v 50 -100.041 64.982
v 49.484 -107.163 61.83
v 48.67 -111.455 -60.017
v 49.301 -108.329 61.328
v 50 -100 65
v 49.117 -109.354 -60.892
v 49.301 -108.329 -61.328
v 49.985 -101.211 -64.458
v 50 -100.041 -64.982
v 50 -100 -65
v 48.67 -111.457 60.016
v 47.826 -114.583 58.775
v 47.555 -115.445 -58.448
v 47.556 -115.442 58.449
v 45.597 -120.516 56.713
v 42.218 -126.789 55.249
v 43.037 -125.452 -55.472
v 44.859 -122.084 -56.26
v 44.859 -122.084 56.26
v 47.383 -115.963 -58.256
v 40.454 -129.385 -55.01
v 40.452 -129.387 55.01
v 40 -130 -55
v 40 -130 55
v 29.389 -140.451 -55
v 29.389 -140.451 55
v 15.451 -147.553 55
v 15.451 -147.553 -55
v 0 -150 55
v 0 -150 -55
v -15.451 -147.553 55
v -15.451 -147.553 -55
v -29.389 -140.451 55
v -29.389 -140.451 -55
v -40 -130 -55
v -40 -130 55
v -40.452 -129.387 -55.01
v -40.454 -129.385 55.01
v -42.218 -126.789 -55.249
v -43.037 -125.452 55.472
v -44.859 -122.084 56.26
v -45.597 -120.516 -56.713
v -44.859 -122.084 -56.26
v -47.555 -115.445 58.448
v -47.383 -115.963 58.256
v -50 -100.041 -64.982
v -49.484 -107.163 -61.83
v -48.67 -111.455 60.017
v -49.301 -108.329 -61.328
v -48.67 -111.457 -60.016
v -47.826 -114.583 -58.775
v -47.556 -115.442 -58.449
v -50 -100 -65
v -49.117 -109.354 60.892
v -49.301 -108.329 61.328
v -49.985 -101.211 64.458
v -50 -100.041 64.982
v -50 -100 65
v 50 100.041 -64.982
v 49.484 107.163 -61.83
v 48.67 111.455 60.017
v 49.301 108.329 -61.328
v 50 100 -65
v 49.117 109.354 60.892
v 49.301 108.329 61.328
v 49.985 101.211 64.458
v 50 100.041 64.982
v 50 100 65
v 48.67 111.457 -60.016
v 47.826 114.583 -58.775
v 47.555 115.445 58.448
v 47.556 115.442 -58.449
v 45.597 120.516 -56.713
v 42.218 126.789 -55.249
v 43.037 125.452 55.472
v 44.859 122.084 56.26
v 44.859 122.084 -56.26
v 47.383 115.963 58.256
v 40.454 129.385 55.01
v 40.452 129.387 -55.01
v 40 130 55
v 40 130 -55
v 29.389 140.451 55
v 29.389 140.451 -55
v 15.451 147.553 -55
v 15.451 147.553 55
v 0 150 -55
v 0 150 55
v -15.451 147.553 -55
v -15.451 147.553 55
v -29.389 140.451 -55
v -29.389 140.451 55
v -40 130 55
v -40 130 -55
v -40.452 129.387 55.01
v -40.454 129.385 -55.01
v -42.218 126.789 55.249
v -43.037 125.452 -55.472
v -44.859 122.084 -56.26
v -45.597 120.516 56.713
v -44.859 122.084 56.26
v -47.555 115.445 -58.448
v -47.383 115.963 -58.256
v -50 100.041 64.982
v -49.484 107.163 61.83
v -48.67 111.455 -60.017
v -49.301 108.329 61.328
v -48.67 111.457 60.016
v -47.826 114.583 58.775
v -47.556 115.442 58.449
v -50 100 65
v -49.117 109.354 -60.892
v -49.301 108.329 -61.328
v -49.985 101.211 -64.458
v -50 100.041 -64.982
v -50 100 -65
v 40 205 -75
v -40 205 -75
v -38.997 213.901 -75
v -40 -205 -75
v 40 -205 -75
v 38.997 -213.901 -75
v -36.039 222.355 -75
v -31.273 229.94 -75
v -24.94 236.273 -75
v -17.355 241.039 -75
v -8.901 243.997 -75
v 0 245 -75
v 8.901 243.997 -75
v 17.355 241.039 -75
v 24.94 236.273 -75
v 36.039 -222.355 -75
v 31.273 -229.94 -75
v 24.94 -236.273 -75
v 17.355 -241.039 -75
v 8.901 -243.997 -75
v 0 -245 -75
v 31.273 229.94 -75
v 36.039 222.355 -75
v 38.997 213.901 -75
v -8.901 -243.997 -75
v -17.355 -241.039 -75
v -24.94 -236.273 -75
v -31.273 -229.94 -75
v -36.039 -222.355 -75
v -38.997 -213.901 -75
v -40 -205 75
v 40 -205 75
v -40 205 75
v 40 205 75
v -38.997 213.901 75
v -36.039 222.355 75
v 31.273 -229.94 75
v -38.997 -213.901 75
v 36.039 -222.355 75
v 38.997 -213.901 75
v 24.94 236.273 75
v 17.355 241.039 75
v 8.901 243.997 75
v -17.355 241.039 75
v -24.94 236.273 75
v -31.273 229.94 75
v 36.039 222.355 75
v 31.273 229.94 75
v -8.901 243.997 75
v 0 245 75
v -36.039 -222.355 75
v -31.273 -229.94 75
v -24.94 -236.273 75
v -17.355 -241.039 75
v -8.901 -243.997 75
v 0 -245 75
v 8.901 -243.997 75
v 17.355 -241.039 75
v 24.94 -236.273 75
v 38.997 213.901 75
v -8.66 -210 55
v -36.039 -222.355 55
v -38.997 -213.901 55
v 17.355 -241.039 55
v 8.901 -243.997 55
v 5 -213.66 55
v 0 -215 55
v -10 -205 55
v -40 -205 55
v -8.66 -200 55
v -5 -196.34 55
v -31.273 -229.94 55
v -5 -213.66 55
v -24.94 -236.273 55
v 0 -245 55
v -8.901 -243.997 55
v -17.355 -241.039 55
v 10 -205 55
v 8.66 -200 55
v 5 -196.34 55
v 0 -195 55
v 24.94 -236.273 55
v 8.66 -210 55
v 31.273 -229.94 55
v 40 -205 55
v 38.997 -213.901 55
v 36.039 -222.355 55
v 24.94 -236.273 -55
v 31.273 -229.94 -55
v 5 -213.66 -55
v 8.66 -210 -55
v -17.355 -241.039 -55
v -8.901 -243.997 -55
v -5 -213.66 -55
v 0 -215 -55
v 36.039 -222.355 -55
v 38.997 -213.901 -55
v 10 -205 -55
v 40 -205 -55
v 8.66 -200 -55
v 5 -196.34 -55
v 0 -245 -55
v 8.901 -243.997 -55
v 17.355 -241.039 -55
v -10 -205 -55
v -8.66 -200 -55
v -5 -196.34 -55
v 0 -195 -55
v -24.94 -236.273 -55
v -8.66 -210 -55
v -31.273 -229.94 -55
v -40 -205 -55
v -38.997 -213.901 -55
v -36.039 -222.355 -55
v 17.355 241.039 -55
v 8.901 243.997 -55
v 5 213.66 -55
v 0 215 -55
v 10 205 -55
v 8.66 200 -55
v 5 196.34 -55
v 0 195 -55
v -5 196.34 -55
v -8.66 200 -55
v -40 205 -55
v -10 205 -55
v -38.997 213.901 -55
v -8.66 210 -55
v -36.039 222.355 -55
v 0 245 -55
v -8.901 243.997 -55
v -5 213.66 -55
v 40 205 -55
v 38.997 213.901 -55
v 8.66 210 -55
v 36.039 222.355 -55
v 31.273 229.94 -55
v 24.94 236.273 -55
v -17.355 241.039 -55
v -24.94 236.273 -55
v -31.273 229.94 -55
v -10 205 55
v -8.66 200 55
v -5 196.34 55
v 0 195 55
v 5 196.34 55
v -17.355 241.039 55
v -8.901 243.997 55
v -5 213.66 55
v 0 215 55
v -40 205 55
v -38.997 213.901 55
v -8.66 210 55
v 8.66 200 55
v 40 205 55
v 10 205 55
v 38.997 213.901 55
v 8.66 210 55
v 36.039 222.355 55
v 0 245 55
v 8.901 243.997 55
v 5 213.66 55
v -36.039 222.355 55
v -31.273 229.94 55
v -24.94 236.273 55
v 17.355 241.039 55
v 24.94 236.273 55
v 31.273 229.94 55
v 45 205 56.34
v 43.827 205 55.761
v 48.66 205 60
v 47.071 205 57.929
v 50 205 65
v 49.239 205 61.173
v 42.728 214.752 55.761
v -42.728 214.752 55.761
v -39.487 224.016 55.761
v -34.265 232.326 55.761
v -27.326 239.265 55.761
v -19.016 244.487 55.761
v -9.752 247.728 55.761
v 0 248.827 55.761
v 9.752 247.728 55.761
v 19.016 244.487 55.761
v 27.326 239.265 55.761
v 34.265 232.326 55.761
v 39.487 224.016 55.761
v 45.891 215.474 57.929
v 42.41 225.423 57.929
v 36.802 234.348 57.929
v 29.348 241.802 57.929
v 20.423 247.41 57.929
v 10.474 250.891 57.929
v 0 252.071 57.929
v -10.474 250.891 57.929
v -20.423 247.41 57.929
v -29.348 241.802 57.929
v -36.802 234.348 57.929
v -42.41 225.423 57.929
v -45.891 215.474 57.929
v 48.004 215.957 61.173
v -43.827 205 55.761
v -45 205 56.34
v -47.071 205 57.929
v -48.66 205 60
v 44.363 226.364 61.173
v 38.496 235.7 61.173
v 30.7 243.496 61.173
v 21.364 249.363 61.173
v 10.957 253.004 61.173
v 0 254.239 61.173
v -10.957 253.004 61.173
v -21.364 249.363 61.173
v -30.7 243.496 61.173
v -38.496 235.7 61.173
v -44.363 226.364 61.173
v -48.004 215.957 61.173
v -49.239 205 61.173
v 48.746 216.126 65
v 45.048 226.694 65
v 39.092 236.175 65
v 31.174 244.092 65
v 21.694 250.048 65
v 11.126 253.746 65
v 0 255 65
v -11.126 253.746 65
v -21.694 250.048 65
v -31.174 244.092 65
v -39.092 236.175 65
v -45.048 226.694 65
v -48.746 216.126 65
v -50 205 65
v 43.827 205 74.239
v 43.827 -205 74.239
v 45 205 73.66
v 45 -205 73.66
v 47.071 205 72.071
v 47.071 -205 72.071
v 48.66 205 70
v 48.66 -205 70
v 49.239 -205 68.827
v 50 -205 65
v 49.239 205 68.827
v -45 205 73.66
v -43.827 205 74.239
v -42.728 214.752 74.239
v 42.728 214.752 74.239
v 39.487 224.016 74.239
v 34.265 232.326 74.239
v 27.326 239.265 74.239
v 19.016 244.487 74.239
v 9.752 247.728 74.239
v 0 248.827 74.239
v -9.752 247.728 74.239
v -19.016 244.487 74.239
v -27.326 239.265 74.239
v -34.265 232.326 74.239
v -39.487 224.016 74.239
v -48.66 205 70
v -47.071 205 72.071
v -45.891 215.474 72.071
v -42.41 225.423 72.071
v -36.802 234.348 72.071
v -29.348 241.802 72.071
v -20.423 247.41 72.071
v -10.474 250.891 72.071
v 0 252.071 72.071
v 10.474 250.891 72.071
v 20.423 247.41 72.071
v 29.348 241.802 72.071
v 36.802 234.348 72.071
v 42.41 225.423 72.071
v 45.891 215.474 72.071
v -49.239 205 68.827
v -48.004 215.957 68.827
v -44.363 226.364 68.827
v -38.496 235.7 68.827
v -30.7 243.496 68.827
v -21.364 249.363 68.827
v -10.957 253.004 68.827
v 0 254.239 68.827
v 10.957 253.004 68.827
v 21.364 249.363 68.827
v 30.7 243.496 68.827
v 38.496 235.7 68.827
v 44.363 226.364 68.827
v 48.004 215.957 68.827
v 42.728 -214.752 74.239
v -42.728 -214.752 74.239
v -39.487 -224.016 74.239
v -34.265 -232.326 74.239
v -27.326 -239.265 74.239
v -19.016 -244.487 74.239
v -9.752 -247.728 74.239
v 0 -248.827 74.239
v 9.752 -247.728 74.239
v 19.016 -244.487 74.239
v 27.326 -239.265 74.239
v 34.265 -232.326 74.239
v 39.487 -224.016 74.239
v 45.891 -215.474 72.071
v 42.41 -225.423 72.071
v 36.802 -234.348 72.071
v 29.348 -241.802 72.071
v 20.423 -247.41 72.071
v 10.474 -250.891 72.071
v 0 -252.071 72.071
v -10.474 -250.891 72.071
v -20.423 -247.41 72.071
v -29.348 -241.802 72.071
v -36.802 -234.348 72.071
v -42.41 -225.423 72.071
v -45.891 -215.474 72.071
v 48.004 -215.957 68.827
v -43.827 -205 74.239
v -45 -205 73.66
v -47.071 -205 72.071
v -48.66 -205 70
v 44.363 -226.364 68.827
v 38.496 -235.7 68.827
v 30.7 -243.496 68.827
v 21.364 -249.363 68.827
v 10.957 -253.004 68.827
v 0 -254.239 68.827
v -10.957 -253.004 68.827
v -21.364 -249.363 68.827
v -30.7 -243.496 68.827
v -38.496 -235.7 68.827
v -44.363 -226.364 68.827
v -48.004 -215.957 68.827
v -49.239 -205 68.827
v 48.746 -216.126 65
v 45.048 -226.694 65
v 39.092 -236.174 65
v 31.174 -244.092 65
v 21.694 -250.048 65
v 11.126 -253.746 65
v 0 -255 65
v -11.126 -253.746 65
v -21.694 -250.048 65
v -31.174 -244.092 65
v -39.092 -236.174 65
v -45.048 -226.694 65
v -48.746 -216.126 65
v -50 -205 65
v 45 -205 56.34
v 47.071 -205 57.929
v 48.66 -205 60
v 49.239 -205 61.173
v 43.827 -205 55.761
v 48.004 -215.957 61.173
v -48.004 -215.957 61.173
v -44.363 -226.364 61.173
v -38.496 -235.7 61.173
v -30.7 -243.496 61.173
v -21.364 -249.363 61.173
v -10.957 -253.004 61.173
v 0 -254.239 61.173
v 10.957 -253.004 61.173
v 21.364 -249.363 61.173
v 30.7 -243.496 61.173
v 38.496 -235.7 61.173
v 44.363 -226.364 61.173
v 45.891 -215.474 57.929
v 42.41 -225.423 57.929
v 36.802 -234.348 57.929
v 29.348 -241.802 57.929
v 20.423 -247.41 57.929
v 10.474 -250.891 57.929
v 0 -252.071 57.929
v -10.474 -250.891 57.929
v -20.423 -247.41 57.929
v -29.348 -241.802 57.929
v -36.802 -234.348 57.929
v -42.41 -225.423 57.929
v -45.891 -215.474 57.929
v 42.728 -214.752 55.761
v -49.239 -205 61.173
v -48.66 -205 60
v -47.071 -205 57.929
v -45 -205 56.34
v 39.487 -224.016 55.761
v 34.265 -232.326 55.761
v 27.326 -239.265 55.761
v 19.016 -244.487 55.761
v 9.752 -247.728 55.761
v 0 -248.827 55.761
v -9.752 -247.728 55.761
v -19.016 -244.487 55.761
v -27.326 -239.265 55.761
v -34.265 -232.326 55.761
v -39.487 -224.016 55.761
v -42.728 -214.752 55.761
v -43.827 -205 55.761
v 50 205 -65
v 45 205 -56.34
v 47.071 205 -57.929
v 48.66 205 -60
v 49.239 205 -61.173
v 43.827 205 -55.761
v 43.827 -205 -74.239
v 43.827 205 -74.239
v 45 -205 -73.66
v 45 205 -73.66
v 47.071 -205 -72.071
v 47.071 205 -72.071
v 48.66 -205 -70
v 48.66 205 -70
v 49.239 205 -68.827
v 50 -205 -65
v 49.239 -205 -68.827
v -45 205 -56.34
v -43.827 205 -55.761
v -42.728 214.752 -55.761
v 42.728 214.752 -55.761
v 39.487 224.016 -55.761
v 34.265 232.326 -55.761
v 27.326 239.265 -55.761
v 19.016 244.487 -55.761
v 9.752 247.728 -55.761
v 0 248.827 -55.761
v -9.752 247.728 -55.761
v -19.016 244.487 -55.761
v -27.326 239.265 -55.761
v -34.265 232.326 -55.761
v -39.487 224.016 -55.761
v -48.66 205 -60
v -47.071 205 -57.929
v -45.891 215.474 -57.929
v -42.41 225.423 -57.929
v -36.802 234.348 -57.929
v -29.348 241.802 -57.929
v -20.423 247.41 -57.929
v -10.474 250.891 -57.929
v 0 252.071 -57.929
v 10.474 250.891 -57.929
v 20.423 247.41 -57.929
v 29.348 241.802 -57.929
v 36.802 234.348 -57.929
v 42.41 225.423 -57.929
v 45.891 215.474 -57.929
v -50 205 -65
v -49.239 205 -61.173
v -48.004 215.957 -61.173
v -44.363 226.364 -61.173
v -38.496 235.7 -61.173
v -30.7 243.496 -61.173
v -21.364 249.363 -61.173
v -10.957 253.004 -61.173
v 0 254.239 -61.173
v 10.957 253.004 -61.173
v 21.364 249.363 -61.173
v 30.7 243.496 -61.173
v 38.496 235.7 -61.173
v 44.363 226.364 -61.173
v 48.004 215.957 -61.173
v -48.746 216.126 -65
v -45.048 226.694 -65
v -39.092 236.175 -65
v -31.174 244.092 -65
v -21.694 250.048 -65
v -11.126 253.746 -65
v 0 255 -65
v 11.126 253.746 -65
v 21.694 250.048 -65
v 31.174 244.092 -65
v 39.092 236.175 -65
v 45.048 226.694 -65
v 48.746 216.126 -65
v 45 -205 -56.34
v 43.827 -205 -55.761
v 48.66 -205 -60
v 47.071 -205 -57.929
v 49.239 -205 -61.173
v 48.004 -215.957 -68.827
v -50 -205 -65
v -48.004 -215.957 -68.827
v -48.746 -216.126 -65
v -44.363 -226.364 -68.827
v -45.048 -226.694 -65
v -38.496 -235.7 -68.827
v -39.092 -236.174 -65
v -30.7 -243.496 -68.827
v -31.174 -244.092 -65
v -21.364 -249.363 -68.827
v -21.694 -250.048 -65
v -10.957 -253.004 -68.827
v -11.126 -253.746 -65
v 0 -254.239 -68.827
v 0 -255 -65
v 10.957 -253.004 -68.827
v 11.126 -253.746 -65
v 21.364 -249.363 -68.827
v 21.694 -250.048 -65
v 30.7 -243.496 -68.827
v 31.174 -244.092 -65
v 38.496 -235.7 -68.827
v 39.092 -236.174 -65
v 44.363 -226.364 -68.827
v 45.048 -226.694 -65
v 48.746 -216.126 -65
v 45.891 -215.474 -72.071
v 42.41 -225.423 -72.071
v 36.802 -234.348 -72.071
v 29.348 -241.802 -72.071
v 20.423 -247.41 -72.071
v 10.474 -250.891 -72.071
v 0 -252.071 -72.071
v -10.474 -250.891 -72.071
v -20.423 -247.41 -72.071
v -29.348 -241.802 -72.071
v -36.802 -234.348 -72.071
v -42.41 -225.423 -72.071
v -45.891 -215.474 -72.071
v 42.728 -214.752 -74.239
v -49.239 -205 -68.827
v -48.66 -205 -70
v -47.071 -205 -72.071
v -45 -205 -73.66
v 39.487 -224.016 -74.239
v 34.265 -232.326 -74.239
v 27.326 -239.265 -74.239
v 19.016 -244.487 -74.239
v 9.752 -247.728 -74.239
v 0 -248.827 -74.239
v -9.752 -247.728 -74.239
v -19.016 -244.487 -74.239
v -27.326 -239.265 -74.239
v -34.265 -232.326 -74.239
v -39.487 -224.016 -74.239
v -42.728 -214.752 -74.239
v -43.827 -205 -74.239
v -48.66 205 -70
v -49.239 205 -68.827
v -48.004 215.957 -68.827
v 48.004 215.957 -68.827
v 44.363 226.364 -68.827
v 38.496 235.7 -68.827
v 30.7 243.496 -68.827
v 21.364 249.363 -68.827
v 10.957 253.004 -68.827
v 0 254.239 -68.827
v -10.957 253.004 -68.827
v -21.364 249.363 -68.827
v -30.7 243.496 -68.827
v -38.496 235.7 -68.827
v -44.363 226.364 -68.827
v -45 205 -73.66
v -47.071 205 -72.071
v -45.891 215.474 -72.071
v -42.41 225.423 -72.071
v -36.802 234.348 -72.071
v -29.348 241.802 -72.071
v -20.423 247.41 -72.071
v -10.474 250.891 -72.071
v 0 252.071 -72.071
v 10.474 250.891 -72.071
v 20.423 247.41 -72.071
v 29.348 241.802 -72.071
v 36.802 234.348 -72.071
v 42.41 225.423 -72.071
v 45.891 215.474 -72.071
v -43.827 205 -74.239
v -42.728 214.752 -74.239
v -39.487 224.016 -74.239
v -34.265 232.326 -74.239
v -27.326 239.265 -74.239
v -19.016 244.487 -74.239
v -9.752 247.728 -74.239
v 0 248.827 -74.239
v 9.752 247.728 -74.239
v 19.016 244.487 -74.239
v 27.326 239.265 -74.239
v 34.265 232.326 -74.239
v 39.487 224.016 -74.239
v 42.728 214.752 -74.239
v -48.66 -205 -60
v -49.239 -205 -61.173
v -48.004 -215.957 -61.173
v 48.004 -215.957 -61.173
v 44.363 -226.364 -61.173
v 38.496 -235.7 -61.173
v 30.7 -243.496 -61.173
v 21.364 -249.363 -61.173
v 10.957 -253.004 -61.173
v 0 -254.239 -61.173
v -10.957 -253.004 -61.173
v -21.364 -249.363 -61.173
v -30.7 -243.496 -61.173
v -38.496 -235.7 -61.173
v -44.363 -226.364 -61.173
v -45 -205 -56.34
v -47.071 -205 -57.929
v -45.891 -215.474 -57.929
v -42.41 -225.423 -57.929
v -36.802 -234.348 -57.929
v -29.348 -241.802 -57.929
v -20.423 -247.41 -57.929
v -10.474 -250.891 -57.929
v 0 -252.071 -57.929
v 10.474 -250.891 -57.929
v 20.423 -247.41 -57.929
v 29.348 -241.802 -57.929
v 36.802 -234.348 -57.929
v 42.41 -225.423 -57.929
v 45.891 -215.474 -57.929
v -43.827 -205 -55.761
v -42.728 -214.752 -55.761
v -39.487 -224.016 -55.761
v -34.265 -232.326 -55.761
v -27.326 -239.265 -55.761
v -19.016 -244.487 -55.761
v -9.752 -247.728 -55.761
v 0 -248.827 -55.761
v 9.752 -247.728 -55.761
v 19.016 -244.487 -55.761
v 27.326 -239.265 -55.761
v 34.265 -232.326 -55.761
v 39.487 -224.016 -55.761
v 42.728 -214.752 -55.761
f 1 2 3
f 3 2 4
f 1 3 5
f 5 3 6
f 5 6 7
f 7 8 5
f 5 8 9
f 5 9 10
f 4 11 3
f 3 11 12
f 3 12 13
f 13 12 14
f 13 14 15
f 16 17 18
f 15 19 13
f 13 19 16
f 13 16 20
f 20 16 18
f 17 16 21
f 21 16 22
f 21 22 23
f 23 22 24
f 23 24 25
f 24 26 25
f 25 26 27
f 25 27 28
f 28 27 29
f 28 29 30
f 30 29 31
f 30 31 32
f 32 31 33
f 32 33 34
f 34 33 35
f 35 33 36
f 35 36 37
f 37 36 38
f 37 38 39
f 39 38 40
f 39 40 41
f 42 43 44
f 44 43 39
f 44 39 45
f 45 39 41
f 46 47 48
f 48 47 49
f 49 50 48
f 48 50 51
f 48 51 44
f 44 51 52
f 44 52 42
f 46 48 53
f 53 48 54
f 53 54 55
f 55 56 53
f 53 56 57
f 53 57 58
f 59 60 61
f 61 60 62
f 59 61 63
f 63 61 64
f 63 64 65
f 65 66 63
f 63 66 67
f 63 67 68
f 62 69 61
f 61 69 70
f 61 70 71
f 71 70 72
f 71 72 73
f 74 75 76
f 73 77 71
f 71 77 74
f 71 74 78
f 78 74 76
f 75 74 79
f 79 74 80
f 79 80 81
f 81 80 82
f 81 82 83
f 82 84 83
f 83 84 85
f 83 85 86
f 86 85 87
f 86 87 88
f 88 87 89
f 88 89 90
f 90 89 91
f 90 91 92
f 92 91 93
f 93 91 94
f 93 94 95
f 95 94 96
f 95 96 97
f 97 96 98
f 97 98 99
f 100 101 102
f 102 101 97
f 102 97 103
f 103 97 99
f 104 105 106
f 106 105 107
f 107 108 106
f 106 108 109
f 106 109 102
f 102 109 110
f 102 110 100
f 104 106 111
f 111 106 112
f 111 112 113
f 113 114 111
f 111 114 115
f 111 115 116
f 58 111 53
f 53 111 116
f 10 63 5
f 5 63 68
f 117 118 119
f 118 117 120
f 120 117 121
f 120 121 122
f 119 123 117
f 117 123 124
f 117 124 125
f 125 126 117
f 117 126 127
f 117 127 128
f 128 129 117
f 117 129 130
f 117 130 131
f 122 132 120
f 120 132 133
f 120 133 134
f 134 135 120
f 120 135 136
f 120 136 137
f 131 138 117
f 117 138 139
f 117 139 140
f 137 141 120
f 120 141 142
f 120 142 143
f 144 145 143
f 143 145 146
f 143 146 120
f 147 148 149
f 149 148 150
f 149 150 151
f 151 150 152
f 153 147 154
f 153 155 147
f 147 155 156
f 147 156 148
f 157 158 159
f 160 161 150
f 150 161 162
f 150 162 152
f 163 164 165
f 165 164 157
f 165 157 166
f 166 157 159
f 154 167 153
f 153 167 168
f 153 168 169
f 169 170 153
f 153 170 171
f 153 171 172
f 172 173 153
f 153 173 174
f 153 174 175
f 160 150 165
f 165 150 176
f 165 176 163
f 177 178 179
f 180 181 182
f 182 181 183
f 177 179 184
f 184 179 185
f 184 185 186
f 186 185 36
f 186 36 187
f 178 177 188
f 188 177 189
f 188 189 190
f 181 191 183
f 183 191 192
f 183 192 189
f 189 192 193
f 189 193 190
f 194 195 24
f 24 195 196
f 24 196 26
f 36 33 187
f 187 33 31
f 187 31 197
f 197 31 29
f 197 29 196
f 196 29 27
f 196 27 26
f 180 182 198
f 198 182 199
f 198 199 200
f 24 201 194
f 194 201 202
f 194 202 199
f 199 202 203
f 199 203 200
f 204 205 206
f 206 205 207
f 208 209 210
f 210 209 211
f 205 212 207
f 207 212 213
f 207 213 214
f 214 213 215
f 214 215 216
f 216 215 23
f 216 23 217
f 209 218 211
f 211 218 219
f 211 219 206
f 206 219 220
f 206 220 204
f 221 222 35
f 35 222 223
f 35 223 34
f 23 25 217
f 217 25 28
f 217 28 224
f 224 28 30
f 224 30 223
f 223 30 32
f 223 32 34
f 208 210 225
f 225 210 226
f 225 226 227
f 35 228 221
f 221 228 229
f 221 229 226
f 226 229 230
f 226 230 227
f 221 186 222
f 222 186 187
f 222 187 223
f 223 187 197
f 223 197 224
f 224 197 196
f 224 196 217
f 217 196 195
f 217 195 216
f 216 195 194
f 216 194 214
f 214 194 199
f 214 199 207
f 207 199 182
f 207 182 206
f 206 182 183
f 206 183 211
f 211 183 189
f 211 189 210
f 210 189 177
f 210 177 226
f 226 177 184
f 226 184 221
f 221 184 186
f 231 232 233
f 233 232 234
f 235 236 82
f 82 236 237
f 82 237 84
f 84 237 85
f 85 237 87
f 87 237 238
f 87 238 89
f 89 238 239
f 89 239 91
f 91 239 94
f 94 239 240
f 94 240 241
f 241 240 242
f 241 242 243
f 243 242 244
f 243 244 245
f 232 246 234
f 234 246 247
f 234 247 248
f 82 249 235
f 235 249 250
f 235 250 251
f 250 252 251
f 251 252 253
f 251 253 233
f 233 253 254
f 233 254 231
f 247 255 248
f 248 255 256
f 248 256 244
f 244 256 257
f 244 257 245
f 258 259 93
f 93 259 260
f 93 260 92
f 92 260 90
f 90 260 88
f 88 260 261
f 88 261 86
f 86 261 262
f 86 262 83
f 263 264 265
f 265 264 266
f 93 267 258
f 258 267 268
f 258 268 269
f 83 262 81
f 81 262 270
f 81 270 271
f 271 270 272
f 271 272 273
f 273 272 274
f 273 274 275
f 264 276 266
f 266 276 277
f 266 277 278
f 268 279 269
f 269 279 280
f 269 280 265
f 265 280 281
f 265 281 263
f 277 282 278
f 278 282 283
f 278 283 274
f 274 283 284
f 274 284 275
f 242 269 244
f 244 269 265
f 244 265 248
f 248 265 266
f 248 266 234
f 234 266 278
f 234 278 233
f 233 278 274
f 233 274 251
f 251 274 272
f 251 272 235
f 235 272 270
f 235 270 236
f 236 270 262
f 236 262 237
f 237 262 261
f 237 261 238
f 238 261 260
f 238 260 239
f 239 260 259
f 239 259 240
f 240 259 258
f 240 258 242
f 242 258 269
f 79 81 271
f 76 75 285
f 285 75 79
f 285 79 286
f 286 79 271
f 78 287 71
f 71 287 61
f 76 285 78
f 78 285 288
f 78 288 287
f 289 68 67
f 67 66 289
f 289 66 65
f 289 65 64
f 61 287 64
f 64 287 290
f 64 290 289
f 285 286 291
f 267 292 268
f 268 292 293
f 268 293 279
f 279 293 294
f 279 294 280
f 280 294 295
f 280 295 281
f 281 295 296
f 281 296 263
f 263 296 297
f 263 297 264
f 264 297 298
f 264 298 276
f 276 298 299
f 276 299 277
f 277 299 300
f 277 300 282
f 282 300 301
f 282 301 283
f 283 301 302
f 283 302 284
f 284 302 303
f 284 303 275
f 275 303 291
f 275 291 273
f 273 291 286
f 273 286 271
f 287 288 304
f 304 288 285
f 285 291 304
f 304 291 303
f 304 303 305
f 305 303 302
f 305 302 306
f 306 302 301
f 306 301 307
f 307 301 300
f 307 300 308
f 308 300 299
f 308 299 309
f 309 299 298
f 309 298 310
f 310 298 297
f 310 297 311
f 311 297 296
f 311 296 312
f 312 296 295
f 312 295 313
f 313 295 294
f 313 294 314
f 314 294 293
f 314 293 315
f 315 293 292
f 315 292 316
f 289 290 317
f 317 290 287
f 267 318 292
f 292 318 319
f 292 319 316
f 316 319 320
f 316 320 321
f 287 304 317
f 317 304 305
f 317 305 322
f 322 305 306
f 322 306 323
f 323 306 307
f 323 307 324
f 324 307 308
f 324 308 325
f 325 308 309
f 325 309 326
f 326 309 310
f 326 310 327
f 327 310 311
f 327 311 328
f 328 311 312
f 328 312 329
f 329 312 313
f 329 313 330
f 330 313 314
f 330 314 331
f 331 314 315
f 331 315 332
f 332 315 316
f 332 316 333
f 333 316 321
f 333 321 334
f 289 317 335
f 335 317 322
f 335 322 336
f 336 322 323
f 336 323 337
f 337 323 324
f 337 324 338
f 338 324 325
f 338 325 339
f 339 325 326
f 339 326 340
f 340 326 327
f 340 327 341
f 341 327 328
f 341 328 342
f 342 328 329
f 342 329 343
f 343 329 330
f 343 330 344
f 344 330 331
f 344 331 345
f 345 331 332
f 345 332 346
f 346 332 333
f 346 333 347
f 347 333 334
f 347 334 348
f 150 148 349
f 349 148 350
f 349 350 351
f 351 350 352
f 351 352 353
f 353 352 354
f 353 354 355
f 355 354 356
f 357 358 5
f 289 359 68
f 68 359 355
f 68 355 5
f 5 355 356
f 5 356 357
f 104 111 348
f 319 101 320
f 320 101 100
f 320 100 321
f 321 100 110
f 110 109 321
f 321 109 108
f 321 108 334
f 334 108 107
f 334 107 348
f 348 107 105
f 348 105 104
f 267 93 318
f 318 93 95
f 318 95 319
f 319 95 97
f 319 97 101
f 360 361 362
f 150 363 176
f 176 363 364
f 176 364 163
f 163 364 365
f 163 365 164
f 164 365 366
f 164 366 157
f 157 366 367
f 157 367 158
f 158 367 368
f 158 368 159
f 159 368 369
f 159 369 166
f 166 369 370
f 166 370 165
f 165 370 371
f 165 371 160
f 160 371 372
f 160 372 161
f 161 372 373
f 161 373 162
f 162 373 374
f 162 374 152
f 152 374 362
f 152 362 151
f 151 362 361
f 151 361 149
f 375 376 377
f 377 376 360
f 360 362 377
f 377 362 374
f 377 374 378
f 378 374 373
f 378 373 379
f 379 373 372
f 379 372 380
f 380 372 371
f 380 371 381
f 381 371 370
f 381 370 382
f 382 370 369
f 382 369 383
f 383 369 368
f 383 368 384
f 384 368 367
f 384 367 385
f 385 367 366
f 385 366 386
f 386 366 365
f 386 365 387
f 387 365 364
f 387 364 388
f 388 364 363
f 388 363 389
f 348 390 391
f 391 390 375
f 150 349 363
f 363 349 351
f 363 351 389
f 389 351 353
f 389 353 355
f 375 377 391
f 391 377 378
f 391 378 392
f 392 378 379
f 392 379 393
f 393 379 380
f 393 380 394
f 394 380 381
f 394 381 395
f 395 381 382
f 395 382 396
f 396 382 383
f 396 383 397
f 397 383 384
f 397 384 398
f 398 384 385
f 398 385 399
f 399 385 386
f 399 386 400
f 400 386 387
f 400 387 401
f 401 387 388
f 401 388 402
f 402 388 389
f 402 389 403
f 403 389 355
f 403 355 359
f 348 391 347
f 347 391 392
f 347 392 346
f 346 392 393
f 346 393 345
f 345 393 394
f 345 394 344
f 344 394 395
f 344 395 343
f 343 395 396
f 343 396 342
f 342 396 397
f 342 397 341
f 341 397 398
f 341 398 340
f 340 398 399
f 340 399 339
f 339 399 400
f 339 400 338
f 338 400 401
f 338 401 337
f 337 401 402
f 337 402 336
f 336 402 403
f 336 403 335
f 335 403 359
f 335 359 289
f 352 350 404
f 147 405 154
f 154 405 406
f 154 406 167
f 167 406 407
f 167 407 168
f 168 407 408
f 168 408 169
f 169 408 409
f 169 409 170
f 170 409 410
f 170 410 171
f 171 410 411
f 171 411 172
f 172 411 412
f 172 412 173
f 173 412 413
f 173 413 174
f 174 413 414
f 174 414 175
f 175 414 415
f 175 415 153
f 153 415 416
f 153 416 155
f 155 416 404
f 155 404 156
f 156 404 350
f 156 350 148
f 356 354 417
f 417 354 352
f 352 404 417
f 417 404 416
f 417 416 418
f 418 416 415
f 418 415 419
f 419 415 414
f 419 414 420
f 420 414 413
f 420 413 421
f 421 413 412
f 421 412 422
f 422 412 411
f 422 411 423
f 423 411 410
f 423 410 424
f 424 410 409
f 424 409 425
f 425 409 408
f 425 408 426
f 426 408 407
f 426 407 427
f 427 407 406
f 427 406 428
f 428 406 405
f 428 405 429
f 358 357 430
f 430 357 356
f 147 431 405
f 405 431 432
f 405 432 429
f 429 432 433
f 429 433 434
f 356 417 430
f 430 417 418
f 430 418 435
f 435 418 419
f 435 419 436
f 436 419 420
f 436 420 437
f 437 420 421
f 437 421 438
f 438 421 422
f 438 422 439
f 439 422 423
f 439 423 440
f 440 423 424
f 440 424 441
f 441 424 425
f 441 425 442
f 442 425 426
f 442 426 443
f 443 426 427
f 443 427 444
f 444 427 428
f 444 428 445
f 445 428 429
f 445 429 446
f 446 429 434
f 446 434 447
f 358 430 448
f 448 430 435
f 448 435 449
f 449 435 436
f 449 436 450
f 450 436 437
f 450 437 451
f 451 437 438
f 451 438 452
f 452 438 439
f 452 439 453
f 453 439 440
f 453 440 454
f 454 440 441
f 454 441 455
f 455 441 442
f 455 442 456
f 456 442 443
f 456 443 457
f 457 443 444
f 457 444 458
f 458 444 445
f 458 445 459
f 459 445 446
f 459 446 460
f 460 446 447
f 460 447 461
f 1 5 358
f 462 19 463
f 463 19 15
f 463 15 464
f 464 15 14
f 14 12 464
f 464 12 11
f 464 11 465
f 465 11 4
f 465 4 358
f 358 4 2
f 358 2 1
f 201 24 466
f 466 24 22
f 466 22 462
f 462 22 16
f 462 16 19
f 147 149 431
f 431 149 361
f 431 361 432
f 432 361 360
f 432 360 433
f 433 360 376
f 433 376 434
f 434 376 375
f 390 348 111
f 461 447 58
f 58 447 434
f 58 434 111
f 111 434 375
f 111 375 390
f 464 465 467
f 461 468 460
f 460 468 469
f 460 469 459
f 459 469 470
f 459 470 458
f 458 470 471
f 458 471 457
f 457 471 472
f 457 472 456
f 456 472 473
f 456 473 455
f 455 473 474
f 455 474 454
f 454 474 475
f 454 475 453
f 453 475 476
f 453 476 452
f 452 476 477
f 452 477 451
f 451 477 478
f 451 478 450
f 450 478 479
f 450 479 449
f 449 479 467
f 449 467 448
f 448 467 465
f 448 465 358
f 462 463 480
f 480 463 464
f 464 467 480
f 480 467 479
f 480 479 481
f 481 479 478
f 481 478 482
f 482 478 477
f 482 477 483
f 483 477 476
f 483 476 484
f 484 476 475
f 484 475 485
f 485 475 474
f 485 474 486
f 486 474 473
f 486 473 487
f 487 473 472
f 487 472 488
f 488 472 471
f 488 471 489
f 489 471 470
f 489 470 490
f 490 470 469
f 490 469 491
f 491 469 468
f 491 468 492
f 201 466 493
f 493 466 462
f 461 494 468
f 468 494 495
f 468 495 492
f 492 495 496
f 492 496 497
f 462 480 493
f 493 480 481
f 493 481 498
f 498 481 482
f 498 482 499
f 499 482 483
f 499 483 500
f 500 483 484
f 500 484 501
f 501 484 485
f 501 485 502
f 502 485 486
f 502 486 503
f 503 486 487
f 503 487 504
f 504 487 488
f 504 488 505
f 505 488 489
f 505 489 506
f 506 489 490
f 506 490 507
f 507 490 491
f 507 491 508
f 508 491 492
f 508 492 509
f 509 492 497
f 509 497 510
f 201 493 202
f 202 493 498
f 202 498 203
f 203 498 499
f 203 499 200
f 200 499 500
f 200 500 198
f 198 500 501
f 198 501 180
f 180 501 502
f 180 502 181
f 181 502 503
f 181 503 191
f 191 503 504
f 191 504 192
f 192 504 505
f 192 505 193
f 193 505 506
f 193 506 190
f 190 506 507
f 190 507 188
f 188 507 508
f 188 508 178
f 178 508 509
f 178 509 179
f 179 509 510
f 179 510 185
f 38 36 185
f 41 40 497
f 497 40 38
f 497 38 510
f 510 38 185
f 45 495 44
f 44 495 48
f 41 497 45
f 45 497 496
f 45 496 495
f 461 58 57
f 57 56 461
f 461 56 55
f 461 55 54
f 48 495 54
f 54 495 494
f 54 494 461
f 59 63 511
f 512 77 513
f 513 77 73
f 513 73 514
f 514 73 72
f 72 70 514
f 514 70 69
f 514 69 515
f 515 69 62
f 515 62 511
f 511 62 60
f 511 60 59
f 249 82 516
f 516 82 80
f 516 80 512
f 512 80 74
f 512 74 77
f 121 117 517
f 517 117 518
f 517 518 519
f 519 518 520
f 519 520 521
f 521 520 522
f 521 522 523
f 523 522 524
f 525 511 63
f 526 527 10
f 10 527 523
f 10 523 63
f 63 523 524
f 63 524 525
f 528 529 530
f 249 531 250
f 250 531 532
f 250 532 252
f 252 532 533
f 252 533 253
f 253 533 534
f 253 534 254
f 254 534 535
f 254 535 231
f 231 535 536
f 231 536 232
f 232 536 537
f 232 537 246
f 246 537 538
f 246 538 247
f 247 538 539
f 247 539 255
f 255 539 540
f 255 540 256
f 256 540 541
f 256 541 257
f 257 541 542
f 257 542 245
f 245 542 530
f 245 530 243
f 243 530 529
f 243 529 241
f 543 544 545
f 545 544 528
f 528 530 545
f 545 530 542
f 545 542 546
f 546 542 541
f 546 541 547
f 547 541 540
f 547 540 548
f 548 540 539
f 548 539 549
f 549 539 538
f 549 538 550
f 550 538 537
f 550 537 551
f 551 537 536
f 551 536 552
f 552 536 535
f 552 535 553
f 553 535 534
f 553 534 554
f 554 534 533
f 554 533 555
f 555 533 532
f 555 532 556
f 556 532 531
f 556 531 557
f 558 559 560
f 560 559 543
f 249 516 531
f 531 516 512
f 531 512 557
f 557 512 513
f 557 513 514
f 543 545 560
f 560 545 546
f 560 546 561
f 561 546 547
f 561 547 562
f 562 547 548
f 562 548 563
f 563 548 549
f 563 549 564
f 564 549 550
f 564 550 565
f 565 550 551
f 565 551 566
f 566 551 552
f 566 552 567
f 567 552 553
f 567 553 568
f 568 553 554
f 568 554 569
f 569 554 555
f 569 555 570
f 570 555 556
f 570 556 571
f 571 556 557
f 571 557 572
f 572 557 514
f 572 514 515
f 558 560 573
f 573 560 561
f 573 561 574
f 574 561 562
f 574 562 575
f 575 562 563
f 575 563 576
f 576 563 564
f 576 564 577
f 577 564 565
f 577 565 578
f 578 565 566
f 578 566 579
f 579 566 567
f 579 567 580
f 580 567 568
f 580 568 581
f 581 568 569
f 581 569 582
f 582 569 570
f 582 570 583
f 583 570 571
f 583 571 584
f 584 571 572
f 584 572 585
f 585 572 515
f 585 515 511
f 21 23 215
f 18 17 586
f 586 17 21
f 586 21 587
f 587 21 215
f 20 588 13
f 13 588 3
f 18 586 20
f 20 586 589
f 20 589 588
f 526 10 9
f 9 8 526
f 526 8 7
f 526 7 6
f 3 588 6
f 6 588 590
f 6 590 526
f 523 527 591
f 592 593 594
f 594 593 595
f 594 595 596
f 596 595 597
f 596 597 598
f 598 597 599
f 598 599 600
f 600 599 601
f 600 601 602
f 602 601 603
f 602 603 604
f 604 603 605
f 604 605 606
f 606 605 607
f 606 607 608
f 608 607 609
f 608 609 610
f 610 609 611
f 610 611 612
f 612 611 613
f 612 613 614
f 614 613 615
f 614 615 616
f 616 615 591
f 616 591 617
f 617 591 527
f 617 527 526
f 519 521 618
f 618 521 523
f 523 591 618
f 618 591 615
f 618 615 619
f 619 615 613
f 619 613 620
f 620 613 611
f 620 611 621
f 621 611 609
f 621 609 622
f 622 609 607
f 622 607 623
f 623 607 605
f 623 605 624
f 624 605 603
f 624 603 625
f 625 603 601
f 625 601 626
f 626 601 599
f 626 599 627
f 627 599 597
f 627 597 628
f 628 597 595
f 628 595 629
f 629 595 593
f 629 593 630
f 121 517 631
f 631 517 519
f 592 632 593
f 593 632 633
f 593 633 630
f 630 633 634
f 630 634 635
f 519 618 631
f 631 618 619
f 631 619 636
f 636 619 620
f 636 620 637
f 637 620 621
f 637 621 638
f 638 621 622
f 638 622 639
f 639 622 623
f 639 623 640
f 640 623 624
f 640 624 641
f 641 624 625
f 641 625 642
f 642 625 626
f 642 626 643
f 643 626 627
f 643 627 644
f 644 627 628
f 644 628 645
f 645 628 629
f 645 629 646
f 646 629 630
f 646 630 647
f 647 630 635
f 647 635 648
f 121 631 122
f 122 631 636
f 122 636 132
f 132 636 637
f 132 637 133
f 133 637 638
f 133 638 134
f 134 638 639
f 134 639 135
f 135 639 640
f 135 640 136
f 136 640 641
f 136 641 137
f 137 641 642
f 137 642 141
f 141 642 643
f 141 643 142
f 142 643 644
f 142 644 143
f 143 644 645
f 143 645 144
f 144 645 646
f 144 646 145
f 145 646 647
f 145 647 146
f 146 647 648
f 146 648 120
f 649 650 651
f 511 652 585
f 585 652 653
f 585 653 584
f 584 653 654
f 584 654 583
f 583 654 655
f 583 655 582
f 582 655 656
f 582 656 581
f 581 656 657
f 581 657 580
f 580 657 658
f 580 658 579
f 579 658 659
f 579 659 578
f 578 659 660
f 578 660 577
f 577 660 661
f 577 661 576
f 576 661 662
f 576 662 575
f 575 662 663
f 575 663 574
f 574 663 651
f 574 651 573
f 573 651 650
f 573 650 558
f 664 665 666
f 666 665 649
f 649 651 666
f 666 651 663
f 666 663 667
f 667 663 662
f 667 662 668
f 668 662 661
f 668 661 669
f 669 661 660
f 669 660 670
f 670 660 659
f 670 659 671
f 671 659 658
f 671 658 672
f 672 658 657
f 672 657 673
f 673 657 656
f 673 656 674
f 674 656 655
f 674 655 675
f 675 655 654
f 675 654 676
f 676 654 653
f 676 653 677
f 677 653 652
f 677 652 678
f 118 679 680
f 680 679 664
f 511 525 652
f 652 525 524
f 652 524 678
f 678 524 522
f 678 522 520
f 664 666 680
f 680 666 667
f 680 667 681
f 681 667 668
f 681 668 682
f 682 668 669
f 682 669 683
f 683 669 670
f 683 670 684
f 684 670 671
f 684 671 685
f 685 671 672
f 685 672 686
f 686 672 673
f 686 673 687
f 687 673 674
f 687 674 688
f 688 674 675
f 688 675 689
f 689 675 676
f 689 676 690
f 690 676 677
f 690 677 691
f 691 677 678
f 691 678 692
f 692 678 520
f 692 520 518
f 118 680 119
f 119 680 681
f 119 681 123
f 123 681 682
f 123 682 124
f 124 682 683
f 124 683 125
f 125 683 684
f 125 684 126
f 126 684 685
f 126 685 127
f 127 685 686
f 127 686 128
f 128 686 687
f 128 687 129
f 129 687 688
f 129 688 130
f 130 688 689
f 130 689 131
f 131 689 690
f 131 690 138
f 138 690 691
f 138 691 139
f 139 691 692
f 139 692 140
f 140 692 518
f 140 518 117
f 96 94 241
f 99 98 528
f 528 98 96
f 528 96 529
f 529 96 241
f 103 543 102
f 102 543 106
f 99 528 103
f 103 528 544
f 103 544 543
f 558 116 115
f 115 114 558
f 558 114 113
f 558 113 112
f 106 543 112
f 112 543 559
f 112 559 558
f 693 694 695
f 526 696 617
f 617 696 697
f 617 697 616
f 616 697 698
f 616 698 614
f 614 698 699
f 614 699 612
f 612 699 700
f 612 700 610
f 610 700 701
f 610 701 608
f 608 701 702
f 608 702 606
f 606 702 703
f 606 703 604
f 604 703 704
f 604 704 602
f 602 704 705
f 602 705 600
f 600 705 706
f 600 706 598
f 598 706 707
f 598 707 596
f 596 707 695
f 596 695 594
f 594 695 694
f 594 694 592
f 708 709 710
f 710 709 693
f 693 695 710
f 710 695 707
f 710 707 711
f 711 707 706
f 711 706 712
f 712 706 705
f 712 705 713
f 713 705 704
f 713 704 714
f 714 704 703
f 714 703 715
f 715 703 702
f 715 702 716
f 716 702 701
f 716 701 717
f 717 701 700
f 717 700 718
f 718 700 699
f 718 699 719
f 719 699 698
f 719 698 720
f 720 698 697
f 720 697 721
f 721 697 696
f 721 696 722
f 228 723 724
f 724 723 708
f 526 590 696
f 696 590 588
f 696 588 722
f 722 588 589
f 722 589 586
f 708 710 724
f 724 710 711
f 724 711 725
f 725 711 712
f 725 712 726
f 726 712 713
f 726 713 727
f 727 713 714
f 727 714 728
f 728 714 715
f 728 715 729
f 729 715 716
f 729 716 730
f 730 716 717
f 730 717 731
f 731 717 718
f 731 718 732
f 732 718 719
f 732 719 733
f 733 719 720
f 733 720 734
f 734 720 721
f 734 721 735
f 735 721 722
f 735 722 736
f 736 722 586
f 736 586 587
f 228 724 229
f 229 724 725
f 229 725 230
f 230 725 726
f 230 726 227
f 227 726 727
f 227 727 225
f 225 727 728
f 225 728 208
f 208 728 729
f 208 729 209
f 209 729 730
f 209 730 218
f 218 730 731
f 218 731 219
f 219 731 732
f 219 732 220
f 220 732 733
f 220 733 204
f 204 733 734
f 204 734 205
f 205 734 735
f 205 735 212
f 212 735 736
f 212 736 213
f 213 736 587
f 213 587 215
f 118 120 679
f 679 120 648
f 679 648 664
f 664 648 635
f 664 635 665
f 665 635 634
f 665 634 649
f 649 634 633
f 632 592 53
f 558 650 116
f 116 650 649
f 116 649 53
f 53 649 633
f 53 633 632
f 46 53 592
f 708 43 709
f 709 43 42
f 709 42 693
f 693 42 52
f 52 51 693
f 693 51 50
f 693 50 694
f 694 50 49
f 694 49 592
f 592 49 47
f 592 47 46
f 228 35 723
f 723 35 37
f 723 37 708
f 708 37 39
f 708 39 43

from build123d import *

# Parameters (mm, degrees)
SKETCH3_W           = 100
SKETCH3_H           = 300
BOSS_EXTRUDE1_DEPTH = 75
CUT_EXTRUDE1_REACH  = 422.463
CUT_EXTRUDE1_START  = -150
SKETCH4_W           = 100
SKETCH4_H           = 110
SKETCH6_R           = 10
BOSS_EXTRUDE2_DEPTH = 55
CUT_EXTRUDE2_REACH  = 422.463
CUT_EXTRUDE2_START  = 150
SKETCH4_2_W         = 100
SKETCH4_2_H         = 110
FILLET1_RADIUS      = 50
FILLET1_LENGTH      = 110
FILLET2_RADIUS      = 50
FILLET2_LENGTH      = 110
FILLET3_R           = 10


with BuildPart() as part:
    # Sketch3 → Boss-Extrude1 (new, symmetric)
    with BuildSketch(Plane.XY):
        Rectangle(SKETCH3_W, SKETCH3_H)
        with BuildLine():
            Line((-50, -150), (-50, -205))
            ThreePointArc((-50, -205), (0, -255), (50, -205))
            Line((50, -205), (50, -150))
            Line((50, -150), (-50, -150))
        make_face()
        with BuildLine():
            ThreePointArc((-50, 205), (0, 255), (50, 205))
            Line((50, 205), (50, 150))
            Line((50, 150), (-50, 150))
            Line((-50, 150), (-50, 205))
        make_face()
    extrude(amount=BOSS_EXTRUDE1_DEPTH, both=True)

    # Sketch4 → Cut-Extrude1 (cut, up to next)
    with BuildSketch(Plane(origin=(0, 0, 0), x_dir=(1, 0, 0), z_dir=(0, 1, 0)).offset(CUT_EXTRUDE1_START), mode=Mode.PRIVATE) as cut_extrude1_sk1:
        Rectangle(SKETCH4_W, SKETCH4_H)
    cut_extrude1_tool1 = extrude(cut_extrude1_sk1.sketch, amount=-CUT_EXTRUDE1_REACH, mode=Mode.PRIVATE) & part.part
    add(cut_extrude1_tool1.solids().sort_by_distance((0, -150, 0))[0], mode=Mode.SUBTRACT)

    # Sketch6 → Boss-Extrude2 (add, symmetric)
    with BuildSketch(Plane.XY):
        with Locations(Location((0, -205, 0), (0, 0, 180))):
            Circle(SKETCH6_R)
    boss_extrude2 = extrude(amount=BOSS_EXTRUDE2_DEPTH, both=True)

    # Sketch4<2> → Cut-Extrude2 (cut, up to next)
    with BuildSketch(Plane(origin=(0, 0, 0), x_dir=(1, 0, 0), z_dir=(0, 1, 0)).offset(CUT_EXTRUDE2_START), mode=Mode.PRIVATE) as cut_extrude2_sk1:
        Rectangle(SKETCH4_2_W, SKETCH4_2_H)
    cut_extrude2_tool1 = extrude(cut_extrude2_sk1.sketch, amount=CUT_EXTRUDE2_REACH, mode=Mode.PRIVATE) & part.part
    add(cut_extrude2_tool1.solids().sort_by_distance((0, 150, 0))[0], mode=Mode.SUBTRACT)

    # Mirror2: Boss-Extrude2 across plane
    add(boss_extrude2.mirror(Plane.ZX))

    # Fillet1: full round fillet: the end face becomes a half cylinder, R = half its width
    fillet1_face = Plane((0, 150, 0), x_dir=(0, 0, -1), z_dir=(0, 1, 0))  # on the end face: x along it, z out of the body
    fillet1_slab = fillet1_face.offset(-FILLET1_RADIUS / 2) * Box(FILLET1_LENGTH, 2 * FILLET1_RADIUS, FILLET1_RADIUS, mode=Mode.PRIVATE)  # the body's end, R deep
    fillet1_round = Plane((0, 100, 0), x_dir=(0, 1, 0), z_dir=(0, 0, -1)) * Cylinder(FILLET1_RADIUS, FILLET1_LENGTH, mode=Mode.PRIVATE)  # its axis R under the face
    add(fillet1_slab - fillet1_round, mode=Mode.SUBTRACT)

    # Fillet2: full round fillet: the end face becomes a half cylinder, R = half its width
    fillet2_face = Plane((0, -150, 0), x_dir=(0, 0, 1), z_dir=(0, -1, 0))  # on the end face: x along it, z out of the body
    fillet2_slab = fillet2_face.offset(-FILLET2_RADIUS / 2) * Box(FILLET2_LENGTH, 2 * FILLET2_RADIUS, FILLET2_RADIUS, mode=Mode.PRIVATE)  # the body's end, R deep
    fillet2_round = Plane((0, -100, 0), x_dir=(0, -1, 0), z_dir=(0, 0, 1)) * Cylinder(FILLET2_RADIUS, FILLET2_LENGTH, mode=Mode.PRIVATE)  # its axis R under the face
    add(fillet2_slab - fillet2_round, mode=Mode.SUBTRACT)

    # Fillet3
    fillet3_edges = [part.edges().sort_by_distance(p)[0] for p in [
        (-50, -152.5, 55),
        (0, -255, 55),
        (-50, -152.5, -55),
        (0, -255, -55),
        (-50, 152.5, 55),
        (0, 255, 55),
        (-50, 152.5, -55),
        (0, 255, -55),
        (0, 255, -75),
        (-50, 0, -75),
        (0, -255, -75),
        (50, 0, -75),
        (0, 255, 75),
        (50, 0, 75),
        (0, -255, 75),
        (-50, 0, 75),
        (50, -152.5, 55),
        (50, -152.5, -55),
        (50, 152.5, 55),
        (50, 152.5, -55),
    ]]
    fillet(fillet3_edges, radius=FILLET3_R - 0.0001)  # a hair under: the kernel refuses the full size


solid = part.part
